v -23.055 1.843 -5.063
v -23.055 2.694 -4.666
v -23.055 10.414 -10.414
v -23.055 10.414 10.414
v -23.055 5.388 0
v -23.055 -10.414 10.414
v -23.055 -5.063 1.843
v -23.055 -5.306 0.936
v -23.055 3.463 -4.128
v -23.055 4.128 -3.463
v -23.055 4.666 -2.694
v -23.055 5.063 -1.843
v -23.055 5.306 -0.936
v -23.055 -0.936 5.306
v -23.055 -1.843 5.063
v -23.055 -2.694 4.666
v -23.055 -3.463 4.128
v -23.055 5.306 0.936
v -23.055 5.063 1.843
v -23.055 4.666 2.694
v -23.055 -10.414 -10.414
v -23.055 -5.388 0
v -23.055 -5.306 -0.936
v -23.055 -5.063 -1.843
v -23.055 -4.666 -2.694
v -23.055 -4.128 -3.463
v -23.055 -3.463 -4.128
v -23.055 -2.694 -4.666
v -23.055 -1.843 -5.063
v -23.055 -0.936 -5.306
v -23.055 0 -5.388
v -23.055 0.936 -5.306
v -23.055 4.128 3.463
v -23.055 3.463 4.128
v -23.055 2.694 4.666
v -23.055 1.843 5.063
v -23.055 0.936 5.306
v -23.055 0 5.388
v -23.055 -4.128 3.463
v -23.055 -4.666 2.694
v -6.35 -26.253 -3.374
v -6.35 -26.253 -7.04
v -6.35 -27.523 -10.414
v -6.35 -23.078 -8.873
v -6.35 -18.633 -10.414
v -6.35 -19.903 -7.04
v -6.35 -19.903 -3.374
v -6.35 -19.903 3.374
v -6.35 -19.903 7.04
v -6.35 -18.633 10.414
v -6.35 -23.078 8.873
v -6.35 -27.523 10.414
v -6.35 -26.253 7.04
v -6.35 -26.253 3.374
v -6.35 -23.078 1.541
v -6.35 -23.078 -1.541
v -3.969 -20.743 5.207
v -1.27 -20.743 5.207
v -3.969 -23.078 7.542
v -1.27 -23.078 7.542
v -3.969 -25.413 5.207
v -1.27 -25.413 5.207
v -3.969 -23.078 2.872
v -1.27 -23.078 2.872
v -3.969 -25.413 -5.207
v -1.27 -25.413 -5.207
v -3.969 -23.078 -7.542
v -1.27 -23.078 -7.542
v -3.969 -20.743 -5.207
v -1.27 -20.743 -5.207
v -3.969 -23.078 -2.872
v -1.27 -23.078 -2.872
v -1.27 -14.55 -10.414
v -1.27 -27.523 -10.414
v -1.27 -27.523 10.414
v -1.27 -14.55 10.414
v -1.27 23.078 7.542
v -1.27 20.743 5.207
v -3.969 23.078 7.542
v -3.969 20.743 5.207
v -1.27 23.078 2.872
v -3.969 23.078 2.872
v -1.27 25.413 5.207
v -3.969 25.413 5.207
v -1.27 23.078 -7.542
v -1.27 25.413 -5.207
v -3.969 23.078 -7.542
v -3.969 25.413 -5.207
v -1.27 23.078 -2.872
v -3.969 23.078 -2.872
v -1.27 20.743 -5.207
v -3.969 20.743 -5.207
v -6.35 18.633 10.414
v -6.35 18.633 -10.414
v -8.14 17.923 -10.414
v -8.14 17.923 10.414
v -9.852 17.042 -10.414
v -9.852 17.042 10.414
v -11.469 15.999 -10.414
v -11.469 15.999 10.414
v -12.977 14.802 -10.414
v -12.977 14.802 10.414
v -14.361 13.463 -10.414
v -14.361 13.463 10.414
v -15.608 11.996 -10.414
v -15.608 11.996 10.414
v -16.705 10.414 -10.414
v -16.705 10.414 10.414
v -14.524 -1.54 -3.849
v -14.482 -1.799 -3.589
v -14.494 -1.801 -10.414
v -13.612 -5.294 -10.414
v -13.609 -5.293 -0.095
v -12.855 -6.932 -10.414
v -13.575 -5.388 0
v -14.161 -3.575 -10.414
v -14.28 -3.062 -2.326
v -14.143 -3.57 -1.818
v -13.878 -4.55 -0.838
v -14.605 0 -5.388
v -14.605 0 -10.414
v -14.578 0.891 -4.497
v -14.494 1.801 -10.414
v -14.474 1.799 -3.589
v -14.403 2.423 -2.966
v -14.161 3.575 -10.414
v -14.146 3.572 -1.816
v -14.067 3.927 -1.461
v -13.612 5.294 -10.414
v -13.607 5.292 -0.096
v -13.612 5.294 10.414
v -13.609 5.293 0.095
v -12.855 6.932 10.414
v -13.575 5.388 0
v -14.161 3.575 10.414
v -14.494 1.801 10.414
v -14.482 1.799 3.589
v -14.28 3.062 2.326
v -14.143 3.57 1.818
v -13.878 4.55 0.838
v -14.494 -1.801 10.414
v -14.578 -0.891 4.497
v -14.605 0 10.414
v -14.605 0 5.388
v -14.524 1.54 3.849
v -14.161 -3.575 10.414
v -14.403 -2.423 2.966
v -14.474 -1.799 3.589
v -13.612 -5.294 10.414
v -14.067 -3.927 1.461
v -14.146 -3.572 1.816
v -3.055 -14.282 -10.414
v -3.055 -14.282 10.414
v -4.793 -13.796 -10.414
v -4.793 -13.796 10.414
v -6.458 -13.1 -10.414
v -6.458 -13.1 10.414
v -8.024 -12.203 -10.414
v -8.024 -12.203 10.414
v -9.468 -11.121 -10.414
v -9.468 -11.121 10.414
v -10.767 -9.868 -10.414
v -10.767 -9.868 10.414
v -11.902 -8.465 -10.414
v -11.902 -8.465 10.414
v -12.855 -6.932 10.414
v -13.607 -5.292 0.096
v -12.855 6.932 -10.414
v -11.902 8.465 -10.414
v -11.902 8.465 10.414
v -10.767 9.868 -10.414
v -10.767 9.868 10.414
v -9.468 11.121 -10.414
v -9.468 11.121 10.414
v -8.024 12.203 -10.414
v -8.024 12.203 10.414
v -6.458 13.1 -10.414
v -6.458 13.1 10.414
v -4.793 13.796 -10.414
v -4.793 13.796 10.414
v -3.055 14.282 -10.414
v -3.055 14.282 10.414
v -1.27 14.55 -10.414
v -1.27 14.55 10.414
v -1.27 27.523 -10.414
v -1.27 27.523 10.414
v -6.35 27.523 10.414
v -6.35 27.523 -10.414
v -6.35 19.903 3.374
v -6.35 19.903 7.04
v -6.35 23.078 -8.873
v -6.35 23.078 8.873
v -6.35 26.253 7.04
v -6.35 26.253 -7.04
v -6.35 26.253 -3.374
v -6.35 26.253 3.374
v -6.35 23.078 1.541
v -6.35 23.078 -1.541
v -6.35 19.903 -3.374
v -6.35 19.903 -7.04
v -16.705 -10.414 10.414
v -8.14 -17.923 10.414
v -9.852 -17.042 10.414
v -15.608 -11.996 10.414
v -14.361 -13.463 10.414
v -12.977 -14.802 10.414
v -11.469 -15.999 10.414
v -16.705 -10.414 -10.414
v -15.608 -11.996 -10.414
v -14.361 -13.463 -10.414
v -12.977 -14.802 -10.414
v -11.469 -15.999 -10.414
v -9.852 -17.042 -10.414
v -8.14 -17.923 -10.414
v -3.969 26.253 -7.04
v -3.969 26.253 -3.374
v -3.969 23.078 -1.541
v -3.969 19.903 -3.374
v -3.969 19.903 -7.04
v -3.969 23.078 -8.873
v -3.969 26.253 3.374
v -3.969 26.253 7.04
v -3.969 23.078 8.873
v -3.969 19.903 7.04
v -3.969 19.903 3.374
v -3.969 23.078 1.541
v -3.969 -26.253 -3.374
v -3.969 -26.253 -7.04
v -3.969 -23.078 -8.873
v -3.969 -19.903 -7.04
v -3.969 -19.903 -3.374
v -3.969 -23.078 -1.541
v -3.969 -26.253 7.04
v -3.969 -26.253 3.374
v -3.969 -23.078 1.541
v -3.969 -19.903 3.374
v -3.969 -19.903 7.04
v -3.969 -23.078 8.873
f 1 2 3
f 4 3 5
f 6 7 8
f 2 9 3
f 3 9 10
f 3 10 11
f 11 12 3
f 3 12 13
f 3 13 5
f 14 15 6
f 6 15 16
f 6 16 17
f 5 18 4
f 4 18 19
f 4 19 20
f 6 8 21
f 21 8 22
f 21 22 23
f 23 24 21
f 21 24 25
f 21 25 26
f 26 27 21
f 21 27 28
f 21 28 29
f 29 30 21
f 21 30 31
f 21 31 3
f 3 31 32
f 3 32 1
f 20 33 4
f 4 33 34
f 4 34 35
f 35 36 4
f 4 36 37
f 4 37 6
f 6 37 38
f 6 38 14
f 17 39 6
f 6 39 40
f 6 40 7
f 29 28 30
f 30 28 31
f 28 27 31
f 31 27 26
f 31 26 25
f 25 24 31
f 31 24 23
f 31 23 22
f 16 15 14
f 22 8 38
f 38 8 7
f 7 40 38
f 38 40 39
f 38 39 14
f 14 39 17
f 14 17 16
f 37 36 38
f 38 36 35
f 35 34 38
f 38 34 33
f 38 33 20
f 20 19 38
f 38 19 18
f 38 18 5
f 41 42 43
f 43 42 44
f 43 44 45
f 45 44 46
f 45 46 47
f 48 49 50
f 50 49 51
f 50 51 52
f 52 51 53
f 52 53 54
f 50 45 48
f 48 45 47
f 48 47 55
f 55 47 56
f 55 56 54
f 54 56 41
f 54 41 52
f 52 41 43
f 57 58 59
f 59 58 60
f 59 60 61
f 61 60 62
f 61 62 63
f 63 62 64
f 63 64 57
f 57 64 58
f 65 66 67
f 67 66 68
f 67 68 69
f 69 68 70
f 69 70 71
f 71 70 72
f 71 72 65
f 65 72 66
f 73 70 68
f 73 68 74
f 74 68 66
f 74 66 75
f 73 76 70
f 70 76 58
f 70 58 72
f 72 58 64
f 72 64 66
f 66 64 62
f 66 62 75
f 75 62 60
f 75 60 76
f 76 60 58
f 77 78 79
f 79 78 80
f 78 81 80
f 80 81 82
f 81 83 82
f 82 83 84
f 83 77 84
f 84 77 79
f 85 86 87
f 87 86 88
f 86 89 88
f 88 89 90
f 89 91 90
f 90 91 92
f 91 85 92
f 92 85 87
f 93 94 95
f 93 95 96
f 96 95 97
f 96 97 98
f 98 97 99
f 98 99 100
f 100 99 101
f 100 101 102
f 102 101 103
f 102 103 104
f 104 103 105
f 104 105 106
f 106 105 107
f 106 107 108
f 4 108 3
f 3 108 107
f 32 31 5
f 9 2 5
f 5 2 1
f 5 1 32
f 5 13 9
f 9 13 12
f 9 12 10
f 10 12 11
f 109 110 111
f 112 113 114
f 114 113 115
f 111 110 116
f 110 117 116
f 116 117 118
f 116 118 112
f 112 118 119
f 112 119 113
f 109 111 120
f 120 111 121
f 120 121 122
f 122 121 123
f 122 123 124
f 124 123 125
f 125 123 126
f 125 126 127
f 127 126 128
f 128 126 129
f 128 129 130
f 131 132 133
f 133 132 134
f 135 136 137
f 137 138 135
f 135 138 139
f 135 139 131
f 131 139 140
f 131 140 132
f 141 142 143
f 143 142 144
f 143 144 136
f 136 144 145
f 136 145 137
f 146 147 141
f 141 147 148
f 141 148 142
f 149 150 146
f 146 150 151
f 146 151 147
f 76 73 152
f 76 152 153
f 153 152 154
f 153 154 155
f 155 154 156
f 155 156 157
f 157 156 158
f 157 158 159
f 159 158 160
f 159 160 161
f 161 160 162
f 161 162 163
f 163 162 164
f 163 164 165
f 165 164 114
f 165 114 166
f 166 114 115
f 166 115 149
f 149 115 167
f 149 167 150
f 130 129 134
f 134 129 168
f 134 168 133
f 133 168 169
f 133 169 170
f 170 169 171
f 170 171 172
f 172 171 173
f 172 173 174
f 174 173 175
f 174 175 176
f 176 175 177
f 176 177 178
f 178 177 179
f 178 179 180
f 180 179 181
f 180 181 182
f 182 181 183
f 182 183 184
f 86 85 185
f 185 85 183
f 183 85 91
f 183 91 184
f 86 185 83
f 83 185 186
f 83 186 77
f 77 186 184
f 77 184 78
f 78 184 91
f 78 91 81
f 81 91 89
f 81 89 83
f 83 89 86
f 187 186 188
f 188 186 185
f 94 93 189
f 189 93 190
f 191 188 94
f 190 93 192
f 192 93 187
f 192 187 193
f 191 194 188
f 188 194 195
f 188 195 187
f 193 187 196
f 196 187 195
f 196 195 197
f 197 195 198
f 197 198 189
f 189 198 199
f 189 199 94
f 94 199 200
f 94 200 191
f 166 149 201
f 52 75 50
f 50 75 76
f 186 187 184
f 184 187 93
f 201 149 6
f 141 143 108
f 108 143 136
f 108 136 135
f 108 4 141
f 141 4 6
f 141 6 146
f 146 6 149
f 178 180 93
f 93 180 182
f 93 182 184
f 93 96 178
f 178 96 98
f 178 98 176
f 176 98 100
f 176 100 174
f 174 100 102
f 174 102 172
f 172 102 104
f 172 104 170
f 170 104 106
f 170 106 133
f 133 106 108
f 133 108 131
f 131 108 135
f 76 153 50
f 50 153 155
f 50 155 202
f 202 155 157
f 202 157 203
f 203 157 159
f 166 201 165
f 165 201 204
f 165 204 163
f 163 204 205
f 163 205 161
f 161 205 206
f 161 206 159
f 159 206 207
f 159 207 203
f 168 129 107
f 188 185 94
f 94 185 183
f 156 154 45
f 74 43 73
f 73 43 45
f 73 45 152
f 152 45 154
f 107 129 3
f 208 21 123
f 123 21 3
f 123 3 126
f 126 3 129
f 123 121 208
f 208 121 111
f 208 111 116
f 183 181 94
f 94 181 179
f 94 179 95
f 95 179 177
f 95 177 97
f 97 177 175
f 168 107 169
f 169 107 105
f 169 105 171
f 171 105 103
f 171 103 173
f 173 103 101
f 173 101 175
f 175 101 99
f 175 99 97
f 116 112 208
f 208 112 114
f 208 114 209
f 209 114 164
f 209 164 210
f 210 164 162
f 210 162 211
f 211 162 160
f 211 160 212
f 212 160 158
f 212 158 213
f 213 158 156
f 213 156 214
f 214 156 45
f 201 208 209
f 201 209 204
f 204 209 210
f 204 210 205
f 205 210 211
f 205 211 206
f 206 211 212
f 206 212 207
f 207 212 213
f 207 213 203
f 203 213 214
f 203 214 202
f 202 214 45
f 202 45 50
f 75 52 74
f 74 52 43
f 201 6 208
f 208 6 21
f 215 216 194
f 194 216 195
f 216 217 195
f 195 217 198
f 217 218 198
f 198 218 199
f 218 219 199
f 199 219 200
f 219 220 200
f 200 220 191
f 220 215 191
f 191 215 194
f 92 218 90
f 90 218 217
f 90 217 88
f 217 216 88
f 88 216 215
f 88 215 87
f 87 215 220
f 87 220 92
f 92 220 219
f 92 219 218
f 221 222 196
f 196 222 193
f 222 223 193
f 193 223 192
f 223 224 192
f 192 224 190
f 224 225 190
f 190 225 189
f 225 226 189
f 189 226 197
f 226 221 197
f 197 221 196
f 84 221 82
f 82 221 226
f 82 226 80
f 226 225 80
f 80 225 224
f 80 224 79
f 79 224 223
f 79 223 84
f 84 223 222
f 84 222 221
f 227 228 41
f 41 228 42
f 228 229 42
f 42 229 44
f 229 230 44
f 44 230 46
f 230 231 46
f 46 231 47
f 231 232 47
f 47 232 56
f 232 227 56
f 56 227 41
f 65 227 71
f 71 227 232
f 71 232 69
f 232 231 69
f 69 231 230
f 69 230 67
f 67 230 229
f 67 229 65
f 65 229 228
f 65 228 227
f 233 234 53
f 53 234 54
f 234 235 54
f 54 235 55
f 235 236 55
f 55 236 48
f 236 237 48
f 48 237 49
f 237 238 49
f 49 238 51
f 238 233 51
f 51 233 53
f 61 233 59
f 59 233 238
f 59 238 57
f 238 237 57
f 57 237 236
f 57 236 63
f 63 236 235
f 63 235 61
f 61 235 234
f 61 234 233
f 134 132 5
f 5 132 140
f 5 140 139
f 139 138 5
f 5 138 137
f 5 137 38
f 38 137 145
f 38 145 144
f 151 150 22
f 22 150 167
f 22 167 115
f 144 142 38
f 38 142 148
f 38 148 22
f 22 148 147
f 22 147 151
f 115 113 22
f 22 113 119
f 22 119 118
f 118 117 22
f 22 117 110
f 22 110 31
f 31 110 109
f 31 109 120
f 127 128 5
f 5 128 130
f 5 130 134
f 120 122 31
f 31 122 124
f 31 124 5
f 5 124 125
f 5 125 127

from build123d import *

# Parameters (mm, degrees)
BOSS_EXTRUDE1_DEPTH = 10.414
CUT_EXTRUDE1_DEPTH  = 6.08
CUT_EXTRUDE3_DEPTH  = 2.38125
CUT_EXTRUDE2_DEPTH  = 22.784724751


with BuildPart() as part:
    # Sketch1 → Boss-Extrude1 (new body, symmetric)
    with BuildSketch(Plane.XY):
        with BuildLine():
            Line((-1.27, 18.632678954), (-1.27, 14.549677831))
            ThreePointArc((-1.27, 14.549677831), (-10.766948848, 9.86807162), (-14.605, 0))
            Line((-14.605, 0), (-23.054724751, 0))
            Line((-23.054724751, 0), (-23.054724751, 10.414))
            Line((-23.054724751, 10.414), (-16.704724751, 10.414))
            ThreePointArc((-16.704724751, 10.414), (-12.237922792, 15.418575509), (-6.35, 18.632678954))
            Line((-6.35, 18.632678954), (-6.35, 27.522678954))
            Line((-6.35, 27.522678954), (-1.27, 27.522678954))
            Line((-1.27, 27.522678954), (-1.27, 18.632678954))
        make_face()
    boss_extrude1 = extrude(amount=BOSS_EXTRUDE1_DEPTH, both=True)

    # Mirror1: Boss-Extrude1 across plane
    add(boss_extrude1.mirror(Plane(origin=(-23.054724751, 0, 10.414), x_dir=(0, 0, 1), z_dir=(0, 1, 0))))

    # Sketch2 → Cut-Extrude1 (cut, through all)
    with BuildSketch(Plane.ZY.offset(6.35)):
        Polygon((5.207, 25.412545545), (2.872133409, 23.077678954), (5.207, 20.742812362), (7.541866591, 23.077678954), align=None)
        Polygon((-7.541866591, 23.077678954), (-5.207, 20.742812362), (-2.872133409, 23.077678954), (-5.207, 25.412545545), align=None)
    cut_extrude1 = extrude(amount=-CUT_EXTRUDE1_DEPTH, mode=Mode.SUBTRACT)

    # Sketch5 → Cut-Extrude3 (cut)
    with BuildSketch(Plane.ZY.offset(6.35)):
        Polygon((-8.873174209, 23.077678954), (-7.040087105, 19.902678954), (-3.373912895, 19.902678954), (-1.540825791, 23.077678954), (-3.373912895, 26.252678954), (-7.040087105, 26.252678954), align=None)
        Polygon((1.540825791, 23.077678954), (3.373912895, 19.902678954), (7.040087105, 19.902678954), (8.873174209, 23.077678954), (7.040087105, 26.252678954), (3.373912895, 26.252678954), align=None)
    cut_extrude3 = extrude(amount=-CUT_EXTRUDE3_DEPTH, mode=Mode.SUBTRACT)

    # Mirror2: Cut-Extrude1, Cut-Extrude3 across plane
    add(cut_extrude1.mirror(Plane.ZX), mode=Mode.SUBTRACT)
    add(cut_extrude3.mirror(Plane.ZX), mode=Mode.SUBTRACT)

    # Sketch3 → Cut-Extrude2 (cut, through all)
    with BuildSketch(Plane.ZY.offset(23.054724751)):
        Polygon((0, 5.388153673), (-5.388153673, 0), (0, -5.388153673), (5.388153673, 0), align=None)
    extrude(amount=-CUT_EXTRUDE2_DEPTH, mode=Mode.SUBTRACT)


solid = part.part
